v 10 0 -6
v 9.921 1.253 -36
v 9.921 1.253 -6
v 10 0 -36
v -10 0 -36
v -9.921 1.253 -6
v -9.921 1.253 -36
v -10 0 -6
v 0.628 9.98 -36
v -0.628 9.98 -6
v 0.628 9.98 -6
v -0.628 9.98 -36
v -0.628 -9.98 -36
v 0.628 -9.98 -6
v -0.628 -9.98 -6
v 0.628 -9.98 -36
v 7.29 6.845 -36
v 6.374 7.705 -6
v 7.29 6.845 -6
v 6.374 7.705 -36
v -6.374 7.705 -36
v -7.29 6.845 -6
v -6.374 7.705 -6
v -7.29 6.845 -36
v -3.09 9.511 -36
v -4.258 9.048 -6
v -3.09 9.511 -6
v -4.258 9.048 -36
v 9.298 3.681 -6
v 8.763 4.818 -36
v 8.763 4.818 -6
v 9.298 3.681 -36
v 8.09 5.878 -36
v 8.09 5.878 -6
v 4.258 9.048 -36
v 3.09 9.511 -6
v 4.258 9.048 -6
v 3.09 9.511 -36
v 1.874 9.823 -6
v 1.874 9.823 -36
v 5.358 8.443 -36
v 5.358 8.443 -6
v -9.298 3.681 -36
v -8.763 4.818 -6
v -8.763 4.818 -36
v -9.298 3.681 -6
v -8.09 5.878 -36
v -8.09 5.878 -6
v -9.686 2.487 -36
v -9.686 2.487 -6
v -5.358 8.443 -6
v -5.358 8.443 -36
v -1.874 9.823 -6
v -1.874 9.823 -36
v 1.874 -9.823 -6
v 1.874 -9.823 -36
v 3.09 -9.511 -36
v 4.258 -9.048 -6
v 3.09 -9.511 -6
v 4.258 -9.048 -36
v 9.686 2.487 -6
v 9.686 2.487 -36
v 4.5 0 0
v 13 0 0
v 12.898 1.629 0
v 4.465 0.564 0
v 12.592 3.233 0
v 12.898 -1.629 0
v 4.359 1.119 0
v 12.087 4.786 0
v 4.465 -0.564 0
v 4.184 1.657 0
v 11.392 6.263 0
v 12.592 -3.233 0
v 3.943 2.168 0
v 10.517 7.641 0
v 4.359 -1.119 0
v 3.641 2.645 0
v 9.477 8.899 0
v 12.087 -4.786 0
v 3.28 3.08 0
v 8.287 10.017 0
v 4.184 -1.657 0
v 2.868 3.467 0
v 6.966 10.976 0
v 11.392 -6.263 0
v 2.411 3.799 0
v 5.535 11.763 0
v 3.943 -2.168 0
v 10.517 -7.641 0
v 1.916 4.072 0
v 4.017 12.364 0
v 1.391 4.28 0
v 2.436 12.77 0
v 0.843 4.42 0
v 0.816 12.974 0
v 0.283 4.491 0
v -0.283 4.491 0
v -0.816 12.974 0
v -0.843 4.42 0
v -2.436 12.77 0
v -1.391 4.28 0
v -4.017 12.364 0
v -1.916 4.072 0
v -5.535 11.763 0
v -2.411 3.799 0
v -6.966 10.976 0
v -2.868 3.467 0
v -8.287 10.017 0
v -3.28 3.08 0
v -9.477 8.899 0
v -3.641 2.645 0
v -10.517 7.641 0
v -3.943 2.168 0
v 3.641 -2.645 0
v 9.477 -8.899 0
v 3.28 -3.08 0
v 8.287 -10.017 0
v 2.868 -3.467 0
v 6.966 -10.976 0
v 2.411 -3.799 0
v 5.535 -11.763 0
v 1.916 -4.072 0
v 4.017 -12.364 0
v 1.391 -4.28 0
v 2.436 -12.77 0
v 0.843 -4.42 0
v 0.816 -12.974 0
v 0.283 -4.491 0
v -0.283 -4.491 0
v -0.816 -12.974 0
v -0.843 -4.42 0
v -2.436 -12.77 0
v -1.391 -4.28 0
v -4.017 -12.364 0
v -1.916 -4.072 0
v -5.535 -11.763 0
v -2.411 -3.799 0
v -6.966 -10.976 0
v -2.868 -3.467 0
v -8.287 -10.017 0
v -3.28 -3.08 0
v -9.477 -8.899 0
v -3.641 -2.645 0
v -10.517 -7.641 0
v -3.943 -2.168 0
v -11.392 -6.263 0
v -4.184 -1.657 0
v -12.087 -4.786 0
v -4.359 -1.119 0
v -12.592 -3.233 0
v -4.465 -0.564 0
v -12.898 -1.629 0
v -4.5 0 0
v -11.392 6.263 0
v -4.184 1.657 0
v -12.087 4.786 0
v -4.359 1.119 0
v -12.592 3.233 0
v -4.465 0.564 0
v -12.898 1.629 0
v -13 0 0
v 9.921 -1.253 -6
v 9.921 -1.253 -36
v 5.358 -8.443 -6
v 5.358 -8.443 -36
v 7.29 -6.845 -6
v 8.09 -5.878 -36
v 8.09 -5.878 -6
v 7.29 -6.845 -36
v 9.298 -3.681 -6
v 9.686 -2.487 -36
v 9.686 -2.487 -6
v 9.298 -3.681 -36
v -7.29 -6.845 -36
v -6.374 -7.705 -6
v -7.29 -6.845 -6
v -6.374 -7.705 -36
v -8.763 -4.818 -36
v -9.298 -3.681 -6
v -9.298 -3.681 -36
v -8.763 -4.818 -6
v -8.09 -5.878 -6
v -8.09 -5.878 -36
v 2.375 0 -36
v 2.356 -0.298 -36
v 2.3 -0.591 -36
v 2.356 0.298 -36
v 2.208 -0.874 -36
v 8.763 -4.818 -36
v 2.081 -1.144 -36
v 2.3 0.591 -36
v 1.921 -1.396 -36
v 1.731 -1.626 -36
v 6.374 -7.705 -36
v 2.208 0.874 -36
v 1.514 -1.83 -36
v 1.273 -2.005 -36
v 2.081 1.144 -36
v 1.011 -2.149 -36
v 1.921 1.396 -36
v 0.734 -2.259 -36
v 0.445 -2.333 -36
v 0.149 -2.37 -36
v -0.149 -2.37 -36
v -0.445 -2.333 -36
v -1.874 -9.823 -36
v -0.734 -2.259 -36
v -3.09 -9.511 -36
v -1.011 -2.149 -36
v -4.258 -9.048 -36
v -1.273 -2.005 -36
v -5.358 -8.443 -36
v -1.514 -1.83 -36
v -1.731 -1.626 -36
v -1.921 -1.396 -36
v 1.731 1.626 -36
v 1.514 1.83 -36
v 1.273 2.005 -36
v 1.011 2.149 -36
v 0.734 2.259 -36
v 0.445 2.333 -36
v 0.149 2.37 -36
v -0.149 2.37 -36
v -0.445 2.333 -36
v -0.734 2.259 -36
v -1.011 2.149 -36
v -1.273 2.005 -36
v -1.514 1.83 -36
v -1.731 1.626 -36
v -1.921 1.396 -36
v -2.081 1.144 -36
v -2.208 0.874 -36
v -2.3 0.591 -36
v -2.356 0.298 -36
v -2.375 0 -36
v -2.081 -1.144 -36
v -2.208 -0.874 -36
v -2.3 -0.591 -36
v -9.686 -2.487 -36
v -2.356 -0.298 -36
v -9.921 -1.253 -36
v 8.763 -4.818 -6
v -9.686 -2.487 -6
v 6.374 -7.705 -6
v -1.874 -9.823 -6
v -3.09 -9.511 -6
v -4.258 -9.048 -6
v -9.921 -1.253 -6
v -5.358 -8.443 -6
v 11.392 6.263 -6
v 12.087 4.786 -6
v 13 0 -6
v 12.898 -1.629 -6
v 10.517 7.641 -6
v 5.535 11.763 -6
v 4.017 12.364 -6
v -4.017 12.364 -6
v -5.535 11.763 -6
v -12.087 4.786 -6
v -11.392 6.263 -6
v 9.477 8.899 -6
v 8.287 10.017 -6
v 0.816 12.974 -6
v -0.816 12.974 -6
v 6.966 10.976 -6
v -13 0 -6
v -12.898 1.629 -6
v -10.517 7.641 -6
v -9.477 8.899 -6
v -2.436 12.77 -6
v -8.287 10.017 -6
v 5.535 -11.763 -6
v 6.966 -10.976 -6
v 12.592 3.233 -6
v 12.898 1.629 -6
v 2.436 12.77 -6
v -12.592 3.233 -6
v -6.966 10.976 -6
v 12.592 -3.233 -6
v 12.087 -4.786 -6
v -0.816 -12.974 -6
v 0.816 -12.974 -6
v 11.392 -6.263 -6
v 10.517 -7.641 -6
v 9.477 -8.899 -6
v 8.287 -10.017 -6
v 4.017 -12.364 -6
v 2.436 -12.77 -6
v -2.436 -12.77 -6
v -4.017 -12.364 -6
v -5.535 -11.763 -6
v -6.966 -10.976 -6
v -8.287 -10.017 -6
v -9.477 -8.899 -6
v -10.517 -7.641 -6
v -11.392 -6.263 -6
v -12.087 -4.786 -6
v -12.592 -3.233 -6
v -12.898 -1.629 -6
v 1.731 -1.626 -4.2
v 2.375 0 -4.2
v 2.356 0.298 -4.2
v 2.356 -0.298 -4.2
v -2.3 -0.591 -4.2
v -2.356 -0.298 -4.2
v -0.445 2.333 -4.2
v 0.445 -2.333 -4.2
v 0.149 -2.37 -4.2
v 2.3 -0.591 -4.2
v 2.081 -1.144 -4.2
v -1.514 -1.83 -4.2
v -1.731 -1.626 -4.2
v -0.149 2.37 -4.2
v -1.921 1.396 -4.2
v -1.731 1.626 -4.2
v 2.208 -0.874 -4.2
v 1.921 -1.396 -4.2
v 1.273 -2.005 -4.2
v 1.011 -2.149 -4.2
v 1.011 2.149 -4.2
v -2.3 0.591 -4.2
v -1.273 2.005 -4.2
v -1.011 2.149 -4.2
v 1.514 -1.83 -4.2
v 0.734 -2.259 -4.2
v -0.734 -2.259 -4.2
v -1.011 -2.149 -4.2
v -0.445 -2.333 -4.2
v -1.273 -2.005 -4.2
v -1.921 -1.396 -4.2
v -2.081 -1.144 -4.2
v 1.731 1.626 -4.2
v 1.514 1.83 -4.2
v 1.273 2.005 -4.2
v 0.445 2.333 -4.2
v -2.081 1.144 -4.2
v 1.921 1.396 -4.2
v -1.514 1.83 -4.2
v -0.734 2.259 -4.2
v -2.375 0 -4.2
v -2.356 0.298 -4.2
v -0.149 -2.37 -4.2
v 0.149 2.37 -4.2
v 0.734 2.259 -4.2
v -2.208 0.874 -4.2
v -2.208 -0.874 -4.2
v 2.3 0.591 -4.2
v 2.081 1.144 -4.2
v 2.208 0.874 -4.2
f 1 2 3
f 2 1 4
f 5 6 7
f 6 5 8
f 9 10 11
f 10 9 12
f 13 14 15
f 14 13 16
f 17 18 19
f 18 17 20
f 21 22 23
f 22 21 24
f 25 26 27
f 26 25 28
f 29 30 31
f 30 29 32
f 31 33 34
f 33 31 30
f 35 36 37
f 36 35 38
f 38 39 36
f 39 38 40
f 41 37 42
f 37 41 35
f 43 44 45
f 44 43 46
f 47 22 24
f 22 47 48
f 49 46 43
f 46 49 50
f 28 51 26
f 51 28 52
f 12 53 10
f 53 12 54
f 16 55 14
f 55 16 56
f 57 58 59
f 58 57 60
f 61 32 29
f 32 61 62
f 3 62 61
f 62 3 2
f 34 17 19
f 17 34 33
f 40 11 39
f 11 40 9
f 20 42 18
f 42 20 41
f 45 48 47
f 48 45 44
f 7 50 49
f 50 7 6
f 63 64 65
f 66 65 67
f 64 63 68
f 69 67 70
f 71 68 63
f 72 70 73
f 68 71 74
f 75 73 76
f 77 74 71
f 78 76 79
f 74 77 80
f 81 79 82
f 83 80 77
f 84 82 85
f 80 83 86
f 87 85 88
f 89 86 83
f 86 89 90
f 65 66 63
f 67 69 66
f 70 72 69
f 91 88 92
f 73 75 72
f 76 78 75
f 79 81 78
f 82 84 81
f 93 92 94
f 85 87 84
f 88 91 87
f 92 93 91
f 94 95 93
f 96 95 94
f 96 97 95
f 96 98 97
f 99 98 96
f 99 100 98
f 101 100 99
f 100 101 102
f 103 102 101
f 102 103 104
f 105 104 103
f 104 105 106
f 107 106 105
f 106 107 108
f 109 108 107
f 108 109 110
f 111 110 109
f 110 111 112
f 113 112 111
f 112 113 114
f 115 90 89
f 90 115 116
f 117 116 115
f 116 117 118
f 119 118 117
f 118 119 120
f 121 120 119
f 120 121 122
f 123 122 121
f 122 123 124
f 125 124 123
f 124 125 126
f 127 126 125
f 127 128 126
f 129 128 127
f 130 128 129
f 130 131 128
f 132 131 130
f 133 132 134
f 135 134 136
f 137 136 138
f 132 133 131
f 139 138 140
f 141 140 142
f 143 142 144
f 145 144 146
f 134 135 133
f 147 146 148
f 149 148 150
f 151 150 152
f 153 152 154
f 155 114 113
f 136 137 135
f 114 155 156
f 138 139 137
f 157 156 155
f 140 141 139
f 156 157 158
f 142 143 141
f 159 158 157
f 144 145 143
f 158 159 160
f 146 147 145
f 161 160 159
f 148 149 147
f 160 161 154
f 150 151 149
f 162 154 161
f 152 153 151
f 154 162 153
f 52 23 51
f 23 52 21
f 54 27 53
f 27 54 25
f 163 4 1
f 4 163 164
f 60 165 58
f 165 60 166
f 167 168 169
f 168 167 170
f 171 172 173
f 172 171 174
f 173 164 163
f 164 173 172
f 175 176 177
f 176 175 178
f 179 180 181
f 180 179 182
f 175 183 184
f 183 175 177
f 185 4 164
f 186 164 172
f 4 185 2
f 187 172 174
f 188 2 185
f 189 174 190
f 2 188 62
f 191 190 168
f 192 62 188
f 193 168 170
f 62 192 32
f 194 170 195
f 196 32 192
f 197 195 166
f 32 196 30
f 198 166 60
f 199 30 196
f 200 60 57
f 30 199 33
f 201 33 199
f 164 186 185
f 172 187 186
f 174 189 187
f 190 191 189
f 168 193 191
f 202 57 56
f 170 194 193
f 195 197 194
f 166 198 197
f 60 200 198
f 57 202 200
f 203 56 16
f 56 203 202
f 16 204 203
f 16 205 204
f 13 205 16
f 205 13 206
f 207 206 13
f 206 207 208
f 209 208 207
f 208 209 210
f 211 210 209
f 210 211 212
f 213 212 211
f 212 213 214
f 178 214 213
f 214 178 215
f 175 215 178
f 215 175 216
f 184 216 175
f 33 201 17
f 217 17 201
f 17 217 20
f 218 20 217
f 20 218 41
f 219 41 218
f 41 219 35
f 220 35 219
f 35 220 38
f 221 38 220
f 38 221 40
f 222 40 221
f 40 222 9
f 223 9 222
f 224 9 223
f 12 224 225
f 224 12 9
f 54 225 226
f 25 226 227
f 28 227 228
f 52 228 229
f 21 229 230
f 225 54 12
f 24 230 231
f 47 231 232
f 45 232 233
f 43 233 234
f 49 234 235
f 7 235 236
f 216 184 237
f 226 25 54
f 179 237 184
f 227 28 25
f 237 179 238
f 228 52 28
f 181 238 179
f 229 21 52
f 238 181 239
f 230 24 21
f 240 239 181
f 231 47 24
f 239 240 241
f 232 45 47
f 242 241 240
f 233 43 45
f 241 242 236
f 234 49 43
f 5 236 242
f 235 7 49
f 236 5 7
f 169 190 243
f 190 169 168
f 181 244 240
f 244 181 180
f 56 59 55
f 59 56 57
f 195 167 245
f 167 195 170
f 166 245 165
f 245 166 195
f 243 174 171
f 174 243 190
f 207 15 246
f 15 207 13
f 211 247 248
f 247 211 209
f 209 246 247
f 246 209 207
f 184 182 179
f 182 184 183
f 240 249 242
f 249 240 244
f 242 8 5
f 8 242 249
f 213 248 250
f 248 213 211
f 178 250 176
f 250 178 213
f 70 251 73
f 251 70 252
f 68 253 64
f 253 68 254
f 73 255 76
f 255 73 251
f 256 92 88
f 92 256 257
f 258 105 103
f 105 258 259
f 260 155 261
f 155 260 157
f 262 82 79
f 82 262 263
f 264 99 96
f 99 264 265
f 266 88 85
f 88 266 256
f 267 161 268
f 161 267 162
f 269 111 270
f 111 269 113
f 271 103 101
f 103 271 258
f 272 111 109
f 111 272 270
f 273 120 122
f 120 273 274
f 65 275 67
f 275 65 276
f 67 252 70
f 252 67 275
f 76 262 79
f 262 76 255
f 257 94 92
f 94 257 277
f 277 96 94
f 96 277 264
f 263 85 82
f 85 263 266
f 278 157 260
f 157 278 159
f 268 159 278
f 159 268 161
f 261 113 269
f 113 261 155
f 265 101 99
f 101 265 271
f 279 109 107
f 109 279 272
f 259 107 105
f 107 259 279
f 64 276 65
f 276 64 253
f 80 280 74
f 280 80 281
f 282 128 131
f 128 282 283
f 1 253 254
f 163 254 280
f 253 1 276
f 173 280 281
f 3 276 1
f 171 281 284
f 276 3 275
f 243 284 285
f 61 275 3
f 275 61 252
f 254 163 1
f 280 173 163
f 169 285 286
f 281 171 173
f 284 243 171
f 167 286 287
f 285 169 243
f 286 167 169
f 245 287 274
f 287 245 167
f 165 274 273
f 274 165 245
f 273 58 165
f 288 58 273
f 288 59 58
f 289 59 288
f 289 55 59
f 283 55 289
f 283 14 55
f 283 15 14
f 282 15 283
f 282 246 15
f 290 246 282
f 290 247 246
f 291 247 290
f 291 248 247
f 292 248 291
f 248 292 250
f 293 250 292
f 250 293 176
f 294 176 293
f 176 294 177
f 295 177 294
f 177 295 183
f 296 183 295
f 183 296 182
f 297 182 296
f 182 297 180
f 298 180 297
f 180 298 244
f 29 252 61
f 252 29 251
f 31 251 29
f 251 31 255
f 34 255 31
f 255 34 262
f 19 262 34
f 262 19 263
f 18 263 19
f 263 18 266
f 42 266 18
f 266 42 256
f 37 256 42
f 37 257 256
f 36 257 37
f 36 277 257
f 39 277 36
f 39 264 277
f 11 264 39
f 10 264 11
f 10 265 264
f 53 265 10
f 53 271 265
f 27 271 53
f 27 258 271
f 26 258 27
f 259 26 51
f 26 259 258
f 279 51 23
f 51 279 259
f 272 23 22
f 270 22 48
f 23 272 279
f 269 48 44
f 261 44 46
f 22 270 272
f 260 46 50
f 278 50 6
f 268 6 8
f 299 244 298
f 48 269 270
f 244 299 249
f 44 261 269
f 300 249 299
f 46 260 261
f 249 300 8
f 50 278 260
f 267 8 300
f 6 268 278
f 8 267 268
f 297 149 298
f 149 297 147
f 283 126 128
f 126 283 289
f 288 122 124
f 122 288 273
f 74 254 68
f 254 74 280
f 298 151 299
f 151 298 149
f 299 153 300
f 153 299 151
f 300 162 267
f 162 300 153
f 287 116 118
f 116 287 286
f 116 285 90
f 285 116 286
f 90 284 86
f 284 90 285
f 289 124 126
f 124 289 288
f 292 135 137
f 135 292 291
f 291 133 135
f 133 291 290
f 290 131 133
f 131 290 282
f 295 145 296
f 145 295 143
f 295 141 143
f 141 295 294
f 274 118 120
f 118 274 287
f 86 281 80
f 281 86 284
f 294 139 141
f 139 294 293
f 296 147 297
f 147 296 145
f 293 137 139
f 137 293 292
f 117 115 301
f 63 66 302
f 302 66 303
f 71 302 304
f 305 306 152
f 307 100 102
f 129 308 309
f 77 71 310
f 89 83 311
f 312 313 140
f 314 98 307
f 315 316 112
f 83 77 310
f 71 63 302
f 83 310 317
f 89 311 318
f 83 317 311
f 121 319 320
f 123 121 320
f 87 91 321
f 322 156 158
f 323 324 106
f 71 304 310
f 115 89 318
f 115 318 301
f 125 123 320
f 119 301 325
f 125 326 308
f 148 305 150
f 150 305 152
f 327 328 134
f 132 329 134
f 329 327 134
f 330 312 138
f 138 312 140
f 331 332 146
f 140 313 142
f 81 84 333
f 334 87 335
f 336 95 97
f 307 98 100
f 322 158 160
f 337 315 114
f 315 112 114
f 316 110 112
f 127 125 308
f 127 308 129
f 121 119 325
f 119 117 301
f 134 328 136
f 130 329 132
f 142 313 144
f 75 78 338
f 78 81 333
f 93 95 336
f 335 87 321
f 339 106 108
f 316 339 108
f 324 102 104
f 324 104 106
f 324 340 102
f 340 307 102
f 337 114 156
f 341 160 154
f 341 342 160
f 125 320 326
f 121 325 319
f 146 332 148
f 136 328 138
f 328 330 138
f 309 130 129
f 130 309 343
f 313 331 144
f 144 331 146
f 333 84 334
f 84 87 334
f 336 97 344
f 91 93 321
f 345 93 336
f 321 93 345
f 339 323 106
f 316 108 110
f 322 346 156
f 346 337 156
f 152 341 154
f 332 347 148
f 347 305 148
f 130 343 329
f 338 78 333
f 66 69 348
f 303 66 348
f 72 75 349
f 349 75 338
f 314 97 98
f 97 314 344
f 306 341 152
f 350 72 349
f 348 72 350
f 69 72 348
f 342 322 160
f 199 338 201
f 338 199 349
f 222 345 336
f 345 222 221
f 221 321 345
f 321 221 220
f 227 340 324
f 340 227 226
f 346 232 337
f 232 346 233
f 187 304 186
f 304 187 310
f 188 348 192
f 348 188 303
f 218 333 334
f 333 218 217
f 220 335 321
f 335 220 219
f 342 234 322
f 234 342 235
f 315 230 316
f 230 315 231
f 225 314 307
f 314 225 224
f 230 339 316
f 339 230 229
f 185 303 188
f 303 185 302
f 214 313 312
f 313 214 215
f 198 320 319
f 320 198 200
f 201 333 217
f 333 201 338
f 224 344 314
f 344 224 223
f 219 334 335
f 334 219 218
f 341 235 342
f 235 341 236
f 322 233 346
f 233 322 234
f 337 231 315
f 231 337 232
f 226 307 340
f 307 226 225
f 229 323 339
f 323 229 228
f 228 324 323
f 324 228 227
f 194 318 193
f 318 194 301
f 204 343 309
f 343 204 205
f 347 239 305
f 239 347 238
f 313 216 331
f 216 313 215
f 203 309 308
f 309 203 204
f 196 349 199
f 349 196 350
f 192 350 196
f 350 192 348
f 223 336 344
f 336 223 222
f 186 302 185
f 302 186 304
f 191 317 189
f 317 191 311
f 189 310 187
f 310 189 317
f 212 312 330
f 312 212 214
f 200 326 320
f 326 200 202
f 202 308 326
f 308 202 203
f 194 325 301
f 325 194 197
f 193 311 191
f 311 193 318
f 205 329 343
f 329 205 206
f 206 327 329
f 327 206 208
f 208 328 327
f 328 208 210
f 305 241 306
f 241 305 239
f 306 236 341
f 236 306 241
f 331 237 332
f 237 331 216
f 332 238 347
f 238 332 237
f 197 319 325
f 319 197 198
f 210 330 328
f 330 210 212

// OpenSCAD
$fn = 50;


difference() {
	union() {
		translate(v = [0, 0, -36.0000000000]) {
			cylinder(h = 36, r = 10.0000000000);
		}
		translate(v = [0, 0, -6.0000000000]) {
			cylinder(h = 6, r = 13.0000000000);
		}
	}
	union() {
		translate(v = [0, 0, 0]) {
			rotate(a = [0, 0, 0]) {
				difference() {
					union() {
						#translate(v = [0, 0, -36.0000000000]) {
							cylinder(h = 36, r = 2.2500000000);
						}
						#translate(v = [0, 0, -4.2000000000]) {
							cylinder(h = 4.2000000000, r1 = 2.3750000000, r2 = 4.5000000000);
						}
						#translate(v = [0, 0, -36.0000000000]) {
							cylinder(h = 36, r = 2.3750000000);
						}
						#translate(v = [0, 0, -36.0000000000]) {
							cylinder(h = 36, r = 2.2500000000);
						}
					}
					union();
				}
			}
		}
	}
}
